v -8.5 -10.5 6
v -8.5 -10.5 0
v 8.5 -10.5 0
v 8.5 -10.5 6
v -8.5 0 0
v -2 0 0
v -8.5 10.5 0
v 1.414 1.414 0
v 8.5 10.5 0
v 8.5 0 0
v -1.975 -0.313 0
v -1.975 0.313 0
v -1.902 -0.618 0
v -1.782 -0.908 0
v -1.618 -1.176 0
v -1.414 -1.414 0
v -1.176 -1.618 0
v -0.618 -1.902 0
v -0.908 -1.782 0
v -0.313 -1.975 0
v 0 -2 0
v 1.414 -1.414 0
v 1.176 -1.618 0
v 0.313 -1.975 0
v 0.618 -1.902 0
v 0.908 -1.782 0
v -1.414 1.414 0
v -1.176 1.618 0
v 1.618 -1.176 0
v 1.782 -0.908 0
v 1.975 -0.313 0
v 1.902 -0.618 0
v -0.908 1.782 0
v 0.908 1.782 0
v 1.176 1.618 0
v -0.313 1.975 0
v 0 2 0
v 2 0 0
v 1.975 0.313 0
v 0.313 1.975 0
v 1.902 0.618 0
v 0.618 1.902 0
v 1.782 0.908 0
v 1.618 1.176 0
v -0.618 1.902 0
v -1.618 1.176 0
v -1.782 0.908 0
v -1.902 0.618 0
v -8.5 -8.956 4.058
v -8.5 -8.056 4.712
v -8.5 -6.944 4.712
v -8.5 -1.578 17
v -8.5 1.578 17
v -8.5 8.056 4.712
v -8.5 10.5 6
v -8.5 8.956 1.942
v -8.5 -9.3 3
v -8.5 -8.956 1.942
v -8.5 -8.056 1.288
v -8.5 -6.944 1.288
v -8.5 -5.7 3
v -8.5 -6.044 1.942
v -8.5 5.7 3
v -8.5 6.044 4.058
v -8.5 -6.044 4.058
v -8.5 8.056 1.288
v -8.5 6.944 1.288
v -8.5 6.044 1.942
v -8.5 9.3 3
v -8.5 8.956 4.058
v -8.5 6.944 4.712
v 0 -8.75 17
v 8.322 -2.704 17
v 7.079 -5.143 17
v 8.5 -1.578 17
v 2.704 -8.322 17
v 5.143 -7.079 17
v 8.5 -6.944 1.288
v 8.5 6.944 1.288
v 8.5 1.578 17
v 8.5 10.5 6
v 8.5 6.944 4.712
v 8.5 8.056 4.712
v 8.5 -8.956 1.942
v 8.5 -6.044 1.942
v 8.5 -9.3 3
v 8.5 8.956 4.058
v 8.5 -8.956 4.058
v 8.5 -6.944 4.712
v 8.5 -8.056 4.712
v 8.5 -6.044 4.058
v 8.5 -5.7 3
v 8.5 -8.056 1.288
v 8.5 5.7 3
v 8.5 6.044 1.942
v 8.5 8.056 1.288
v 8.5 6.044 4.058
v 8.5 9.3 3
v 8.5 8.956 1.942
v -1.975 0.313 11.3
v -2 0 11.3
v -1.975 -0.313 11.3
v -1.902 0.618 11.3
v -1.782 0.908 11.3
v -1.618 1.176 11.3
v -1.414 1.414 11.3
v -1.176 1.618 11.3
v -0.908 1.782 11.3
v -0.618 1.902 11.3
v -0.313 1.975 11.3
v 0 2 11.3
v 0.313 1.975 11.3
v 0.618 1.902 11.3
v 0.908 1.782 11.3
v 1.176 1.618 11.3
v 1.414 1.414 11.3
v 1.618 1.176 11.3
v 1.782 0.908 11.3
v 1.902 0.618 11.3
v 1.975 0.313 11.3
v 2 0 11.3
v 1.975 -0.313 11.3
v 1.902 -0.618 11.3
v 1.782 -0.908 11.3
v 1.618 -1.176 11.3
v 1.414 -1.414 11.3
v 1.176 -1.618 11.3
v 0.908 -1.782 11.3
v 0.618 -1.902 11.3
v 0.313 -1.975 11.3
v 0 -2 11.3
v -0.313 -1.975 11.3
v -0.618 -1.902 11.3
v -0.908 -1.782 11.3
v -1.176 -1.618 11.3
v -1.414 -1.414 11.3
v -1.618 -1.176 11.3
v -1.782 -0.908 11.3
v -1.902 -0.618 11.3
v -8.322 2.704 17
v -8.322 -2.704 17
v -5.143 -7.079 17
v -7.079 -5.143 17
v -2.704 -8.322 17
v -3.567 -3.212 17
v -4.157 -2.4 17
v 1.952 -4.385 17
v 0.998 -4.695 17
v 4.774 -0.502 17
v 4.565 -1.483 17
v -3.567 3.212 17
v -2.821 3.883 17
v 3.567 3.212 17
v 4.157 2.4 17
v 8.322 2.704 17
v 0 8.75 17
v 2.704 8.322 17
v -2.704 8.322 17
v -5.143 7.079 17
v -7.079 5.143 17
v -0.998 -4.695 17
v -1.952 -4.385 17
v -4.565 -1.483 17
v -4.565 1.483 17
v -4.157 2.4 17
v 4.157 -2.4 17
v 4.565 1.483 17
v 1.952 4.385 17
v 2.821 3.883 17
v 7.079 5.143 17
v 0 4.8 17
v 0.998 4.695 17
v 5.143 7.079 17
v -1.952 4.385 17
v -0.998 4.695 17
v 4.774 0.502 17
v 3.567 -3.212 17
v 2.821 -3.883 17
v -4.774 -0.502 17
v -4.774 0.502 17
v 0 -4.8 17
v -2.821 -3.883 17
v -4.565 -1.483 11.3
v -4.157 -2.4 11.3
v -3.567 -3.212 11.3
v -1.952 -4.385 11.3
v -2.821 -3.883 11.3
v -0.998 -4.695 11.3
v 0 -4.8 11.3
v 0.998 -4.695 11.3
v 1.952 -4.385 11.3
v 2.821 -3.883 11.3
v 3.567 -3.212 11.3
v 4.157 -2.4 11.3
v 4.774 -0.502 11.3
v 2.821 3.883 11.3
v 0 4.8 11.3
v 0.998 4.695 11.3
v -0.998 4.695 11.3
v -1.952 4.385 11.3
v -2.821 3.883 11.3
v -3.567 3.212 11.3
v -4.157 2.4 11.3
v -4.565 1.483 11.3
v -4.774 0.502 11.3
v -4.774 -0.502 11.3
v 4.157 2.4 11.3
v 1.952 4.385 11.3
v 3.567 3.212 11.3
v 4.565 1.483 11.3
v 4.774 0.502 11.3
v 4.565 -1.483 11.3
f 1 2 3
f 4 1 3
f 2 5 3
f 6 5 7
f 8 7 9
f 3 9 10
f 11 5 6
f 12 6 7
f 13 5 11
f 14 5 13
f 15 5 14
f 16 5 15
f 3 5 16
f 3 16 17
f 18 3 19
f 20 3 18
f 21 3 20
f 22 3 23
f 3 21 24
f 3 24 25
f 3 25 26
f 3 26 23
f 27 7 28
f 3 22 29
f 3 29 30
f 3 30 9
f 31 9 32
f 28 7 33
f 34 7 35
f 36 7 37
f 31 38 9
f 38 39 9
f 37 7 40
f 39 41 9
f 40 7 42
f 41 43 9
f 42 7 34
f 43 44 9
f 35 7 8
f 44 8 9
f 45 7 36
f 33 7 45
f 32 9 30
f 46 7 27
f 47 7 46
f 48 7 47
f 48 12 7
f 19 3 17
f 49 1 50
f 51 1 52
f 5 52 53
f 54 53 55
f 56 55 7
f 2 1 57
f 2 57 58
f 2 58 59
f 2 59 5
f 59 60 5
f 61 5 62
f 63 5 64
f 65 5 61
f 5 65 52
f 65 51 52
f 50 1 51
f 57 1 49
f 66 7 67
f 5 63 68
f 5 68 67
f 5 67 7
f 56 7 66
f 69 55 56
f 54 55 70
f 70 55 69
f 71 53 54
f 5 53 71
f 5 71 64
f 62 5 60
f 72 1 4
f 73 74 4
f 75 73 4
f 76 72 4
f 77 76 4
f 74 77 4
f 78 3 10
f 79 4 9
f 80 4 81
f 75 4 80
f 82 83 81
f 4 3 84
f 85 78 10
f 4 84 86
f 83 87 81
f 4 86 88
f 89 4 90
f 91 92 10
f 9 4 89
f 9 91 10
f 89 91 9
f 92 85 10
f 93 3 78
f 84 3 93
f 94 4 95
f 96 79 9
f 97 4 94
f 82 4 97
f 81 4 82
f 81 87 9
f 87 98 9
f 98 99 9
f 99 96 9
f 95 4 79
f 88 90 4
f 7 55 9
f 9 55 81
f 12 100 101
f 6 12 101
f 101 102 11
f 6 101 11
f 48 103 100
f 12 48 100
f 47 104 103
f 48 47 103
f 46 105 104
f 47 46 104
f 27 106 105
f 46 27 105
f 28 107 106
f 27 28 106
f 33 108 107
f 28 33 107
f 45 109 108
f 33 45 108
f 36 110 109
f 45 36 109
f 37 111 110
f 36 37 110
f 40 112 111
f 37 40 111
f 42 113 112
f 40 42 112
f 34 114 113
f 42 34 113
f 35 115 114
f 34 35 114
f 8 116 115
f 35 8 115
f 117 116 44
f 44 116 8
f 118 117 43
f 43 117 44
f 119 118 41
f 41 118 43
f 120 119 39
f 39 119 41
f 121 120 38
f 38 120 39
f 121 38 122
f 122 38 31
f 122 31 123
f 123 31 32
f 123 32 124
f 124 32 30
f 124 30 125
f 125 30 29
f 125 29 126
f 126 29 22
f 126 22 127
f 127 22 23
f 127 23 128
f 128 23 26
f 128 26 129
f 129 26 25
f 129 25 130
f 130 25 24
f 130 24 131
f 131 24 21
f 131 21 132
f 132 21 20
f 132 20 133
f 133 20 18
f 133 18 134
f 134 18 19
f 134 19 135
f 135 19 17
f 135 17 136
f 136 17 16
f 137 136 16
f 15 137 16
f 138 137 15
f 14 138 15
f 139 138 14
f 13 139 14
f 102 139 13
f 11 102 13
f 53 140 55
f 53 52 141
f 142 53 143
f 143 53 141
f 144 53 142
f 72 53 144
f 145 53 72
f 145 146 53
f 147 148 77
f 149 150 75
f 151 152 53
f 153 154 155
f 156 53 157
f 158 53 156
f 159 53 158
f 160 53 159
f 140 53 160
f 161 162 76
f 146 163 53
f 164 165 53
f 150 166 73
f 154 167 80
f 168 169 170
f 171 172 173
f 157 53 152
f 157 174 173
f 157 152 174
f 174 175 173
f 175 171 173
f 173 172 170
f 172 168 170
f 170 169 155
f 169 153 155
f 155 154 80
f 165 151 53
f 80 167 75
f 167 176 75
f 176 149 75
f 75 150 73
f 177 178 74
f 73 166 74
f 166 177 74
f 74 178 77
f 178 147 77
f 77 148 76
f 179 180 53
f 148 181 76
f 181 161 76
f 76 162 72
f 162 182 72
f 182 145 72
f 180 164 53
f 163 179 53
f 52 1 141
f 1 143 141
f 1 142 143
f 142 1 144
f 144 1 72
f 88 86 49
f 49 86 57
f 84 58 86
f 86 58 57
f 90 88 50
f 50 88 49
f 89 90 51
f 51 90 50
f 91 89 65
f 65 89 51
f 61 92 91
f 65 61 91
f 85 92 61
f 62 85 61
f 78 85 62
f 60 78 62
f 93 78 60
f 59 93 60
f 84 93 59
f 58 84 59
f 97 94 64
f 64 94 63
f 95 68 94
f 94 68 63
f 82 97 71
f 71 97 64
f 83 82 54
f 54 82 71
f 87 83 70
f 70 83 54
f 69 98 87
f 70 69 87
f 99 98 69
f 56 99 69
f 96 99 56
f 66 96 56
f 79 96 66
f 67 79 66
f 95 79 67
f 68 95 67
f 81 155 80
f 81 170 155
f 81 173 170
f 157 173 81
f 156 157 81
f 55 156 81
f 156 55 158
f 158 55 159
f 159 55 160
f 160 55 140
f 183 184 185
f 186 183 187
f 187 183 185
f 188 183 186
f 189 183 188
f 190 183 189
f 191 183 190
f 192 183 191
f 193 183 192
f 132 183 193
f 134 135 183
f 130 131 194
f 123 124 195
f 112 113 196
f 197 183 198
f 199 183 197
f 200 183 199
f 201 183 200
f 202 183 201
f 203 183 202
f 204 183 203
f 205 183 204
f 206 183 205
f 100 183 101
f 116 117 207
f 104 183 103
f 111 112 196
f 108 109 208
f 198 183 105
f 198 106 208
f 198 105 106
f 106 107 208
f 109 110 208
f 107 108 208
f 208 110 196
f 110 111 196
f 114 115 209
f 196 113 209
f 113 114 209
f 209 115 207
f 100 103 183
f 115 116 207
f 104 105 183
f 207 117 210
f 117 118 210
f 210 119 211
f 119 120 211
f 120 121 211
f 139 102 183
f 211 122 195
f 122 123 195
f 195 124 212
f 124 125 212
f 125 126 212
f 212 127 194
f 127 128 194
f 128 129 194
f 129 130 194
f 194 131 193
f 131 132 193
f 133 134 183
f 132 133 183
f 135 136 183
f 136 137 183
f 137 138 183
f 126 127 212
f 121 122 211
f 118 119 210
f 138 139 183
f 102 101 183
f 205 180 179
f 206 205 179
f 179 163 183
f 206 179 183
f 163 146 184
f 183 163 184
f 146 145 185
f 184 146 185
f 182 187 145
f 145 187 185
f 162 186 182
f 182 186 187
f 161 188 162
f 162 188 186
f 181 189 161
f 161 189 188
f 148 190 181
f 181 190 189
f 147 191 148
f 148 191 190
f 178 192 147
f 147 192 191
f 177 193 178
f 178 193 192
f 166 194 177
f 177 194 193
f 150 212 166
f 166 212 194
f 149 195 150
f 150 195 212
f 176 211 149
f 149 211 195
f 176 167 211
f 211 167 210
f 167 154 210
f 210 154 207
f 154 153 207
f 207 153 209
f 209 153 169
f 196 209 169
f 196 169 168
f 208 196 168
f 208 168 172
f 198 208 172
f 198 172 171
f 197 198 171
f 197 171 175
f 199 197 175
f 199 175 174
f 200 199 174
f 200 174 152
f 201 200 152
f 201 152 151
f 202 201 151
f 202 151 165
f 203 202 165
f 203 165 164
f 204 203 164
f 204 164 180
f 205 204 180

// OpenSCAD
module hotend_negative() {
  union() {
    //    translate([0, 0, -4]) cylinder(r=2, h=15, $fn=40);	// socket for the Ubis hot end

    //    translate([0, 0, -4]) cylinder(r=8.15, h=12, $fn=40);	// socket for the Ubis hot end
    translate([0, 0, 8.3]) cylinder(r=9.6/2, h=30, $fn=30);   // hole for the M5 push fitting
    rotate([90, 0, 0]) translate([7.5, 0, -15]) cylinder(r=1.8, h=40, $fn=10);	// hot end screw
    rotate([90, 0, 0]) translate([-7.5, 0, -15]) cylinder(r=1.8, h=40, $fn=10);	// hot end screw
  }

}


module hotend_with_feed() { // This needs a clear 27x27x6 footprint at the edge to work with.
  cubeside=24;


  rotate([0,0,90])
  translate([0,0,3])
  difference() {
    union(){
      hull() {	
	//	cube([cubeside, cubeside, 6], center=true);	// bump for the tube fitting
	//cylinder(r=12, h=6, $fn=20);
	cube([21,17,6], true);
	translate([0, 0, 6]) cylinder(r=8.75, h=8,$fn=20);
      }
    }

    hotend_negative();
    /*
    translate([0, 0, -4]) cylinder(r=2, h=15, $fn=40);	// socket for the Ubis hot end
    translate([0, 0, -4]) cylinder(r=8.15, h=12, $fn=40);	// socket for the Ubis hot end
    translate([0, 0, 8.3]) cylinder(r=9.6/2, h=30, $fn=30);   // hole for the M5 push fitting
    rotate([90, 0, 0]) translate([7.5, 0, -15]) cylinder(r=1.8, h=40, $fn=10);	// hot end screw
    rotate([90, 0, 0]) translate([-7.5, 0, -15]) cylinder(r=1.8, h=40, $fn=10);	// hot end screw
    */
  }
}


intersection() {
  difference() {
    union() {
      //      cylinder(r=12, h=6);
      hotend_with_feed();
    }
    translate([0,0,-5]) cylinder(r=2, h=40, $fn=40);

  rotate([0,0,90])
  translate([0,0,3])

    hotend_negative();
  }
  cube([17,100,100], true);
}
